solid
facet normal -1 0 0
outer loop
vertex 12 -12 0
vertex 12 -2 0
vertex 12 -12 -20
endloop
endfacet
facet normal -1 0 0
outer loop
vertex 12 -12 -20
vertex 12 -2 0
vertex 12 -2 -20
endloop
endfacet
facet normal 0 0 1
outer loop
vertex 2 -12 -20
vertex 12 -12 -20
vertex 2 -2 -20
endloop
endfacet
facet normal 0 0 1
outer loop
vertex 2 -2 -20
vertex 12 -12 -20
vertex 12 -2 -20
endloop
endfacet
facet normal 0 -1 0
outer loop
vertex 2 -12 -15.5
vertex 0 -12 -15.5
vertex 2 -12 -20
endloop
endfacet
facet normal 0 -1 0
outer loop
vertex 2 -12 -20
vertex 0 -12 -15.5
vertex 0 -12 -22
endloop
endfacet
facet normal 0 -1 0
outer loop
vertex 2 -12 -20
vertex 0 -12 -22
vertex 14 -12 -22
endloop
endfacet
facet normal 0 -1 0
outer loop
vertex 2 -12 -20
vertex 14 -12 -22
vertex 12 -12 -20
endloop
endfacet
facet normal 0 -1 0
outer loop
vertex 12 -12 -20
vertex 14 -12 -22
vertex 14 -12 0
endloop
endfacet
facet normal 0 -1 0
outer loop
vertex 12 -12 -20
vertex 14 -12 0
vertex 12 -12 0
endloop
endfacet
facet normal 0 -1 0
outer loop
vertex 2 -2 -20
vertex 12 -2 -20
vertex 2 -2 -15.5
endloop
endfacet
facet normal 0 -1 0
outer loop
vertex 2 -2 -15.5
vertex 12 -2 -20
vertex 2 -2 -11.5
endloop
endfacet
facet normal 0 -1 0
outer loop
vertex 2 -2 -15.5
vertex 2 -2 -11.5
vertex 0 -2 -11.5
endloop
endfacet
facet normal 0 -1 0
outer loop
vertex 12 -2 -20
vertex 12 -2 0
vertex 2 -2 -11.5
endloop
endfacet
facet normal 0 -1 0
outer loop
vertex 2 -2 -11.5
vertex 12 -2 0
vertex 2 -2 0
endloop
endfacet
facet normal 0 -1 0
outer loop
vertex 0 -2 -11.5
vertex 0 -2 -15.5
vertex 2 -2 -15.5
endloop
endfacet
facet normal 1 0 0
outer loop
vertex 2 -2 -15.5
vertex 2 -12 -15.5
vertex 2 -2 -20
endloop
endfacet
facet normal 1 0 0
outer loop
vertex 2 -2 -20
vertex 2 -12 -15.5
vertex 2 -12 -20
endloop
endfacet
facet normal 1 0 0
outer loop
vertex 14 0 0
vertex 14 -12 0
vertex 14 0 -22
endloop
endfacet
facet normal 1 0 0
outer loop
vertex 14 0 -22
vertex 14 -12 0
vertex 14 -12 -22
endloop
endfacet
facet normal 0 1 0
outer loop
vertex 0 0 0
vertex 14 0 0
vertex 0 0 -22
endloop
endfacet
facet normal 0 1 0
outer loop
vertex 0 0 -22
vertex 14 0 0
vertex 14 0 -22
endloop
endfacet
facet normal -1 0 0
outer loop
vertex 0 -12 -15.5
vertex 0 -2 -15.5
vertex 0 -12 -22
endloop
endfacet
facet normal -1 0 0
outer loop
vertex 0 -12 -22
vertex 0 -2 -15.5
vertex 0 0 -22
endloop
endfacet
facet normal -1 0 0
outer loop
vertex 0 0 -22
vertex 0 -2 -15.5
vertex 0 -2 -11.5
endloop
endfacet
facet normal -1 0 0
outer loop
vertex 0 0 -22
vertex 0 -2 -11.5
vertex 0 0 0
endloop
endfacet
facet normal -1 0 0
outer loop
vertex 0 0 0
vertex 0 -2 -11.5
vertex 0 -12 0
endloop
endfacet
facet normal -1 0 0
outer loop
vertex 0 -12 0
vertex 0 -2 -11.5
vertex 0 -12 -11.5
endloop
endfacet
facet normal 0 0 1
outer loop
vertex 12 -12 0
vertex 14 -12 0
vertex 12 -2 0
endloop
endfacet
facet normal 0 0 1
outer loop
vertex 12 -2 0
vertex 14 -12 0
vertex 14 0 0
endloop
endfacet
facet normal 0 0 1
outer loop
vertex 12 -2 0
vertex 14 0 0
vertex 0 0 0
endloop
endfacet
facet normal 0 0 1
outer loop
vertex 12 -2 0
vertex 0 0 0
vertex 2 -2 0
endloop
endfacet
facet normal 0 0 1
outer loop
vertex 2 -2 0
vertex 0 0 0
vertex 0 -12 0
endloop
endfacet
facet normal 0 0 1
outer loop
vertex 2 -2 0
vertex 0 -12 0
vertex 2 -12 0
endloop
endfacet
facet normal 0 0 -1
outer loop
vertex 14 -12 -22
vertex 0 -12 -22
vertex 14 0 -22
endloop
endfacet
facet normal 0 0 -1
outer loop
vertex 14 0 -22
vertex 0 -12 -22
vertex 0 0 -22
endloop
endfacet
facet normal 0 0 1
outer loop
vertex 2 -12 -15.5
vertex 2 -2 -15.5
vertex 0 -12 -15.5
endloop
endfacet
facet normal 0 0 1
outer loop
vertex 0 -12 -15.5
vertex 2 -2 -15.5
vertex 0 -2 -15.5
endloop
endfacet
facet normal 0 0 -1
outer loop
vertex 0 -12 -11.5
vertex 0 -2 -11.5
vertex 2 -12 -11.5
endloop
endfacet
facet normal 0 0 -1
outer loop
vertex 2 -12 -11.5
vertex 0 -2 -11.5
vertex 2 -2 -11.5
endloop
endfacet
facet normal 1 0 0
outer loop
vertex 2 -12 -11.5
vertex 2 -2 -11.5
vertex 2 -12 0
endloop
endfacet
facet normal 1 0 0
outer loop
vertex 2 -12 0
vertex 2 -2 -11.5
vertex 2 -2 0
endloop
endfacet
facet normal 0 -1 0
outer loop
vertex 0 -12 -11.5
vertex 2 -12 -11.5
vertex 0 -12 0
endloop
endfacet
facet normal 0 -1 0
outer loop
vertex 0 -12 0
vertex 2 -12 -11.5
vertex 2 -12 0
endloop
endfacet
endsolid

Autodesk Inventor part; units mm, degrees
ref_plane "YZ Plane" through (0, 0, 0) normal (1, 0, 0) x (0, 1, 0)
ref_plane "XZ Plane" through (0, 0, 0) normal (0, 1, 0) x (-1, 0, 0)
ref_plane "XY Plane" through (0, 0, 0) normal (0, 0, 1) x (1, 0, 0)
sketch "Sketch1" plane through (0, 0, 0) normal (0, 0, 1) x (1, 0, 0)
  line L0 (0, 0) -> (14, 0)
  line L1 (14, 0) -> (14, -12)
  line L2 (14, -12) -> (0, -12)
  line L3 (0, -12) -> (0, 0)
  dimension "d0" = 14
  dimension "d1" = 12
extrude "Extrusion1" add sketch "Sketch1" against normal blind 22
sketch "Sketch2" plane through (0, 0, 0) normal (0, 0, 1) x (1, 0, 0)
  line L0 (2, -2) -> (12, -2)
  line L1 (12, -2) -> (12, -22)
  line L2 (12, -22) -> (2, -22)
  line L3 (2, -22) -> (2, -2)
  point P0 (0, 0)
  dimension "d4" = 10
  dimension "d5" = 20
extrude "Extrusion2" cut sketch "Sketch2" against normal blind 20
sketch "Sketch8" plane through (0, -12, 0) normal (-1, 0, 0) x (0, 0, 1)
  point P0 (0, 12)
sketch "Sketch9" plane through (0, -12, 0) normal (-1, 0, 0) x (0, 0, 1)
  point P0 (0, 12)
sketch "Sketch11" plane through (0, -12, 0) normal (-1, 0, 0) x (0, 0, 1)
  point P0 (0, 12)
sketch "Sketch12" plane through (0, -12, 0) normal (-1, 0, 0) x (0, 0, 1)
  line L0 (-11.5, 10) -> (-15.5, 10)
  line L1 (-15.5, 10) -> (-15.5, -1.8066)
  line L2 (-15.5, -1.8066) -> (-11.5, -1.8066)
  line L3 (-11.5, -1.8066) -> (-11.5, 10)
  point P0 (0, 12)
  dimension "d24" = 4
extrude "Extrusion8" cut sketch "Sketch12" against normal blind 10
properties part number "housing_v04"
